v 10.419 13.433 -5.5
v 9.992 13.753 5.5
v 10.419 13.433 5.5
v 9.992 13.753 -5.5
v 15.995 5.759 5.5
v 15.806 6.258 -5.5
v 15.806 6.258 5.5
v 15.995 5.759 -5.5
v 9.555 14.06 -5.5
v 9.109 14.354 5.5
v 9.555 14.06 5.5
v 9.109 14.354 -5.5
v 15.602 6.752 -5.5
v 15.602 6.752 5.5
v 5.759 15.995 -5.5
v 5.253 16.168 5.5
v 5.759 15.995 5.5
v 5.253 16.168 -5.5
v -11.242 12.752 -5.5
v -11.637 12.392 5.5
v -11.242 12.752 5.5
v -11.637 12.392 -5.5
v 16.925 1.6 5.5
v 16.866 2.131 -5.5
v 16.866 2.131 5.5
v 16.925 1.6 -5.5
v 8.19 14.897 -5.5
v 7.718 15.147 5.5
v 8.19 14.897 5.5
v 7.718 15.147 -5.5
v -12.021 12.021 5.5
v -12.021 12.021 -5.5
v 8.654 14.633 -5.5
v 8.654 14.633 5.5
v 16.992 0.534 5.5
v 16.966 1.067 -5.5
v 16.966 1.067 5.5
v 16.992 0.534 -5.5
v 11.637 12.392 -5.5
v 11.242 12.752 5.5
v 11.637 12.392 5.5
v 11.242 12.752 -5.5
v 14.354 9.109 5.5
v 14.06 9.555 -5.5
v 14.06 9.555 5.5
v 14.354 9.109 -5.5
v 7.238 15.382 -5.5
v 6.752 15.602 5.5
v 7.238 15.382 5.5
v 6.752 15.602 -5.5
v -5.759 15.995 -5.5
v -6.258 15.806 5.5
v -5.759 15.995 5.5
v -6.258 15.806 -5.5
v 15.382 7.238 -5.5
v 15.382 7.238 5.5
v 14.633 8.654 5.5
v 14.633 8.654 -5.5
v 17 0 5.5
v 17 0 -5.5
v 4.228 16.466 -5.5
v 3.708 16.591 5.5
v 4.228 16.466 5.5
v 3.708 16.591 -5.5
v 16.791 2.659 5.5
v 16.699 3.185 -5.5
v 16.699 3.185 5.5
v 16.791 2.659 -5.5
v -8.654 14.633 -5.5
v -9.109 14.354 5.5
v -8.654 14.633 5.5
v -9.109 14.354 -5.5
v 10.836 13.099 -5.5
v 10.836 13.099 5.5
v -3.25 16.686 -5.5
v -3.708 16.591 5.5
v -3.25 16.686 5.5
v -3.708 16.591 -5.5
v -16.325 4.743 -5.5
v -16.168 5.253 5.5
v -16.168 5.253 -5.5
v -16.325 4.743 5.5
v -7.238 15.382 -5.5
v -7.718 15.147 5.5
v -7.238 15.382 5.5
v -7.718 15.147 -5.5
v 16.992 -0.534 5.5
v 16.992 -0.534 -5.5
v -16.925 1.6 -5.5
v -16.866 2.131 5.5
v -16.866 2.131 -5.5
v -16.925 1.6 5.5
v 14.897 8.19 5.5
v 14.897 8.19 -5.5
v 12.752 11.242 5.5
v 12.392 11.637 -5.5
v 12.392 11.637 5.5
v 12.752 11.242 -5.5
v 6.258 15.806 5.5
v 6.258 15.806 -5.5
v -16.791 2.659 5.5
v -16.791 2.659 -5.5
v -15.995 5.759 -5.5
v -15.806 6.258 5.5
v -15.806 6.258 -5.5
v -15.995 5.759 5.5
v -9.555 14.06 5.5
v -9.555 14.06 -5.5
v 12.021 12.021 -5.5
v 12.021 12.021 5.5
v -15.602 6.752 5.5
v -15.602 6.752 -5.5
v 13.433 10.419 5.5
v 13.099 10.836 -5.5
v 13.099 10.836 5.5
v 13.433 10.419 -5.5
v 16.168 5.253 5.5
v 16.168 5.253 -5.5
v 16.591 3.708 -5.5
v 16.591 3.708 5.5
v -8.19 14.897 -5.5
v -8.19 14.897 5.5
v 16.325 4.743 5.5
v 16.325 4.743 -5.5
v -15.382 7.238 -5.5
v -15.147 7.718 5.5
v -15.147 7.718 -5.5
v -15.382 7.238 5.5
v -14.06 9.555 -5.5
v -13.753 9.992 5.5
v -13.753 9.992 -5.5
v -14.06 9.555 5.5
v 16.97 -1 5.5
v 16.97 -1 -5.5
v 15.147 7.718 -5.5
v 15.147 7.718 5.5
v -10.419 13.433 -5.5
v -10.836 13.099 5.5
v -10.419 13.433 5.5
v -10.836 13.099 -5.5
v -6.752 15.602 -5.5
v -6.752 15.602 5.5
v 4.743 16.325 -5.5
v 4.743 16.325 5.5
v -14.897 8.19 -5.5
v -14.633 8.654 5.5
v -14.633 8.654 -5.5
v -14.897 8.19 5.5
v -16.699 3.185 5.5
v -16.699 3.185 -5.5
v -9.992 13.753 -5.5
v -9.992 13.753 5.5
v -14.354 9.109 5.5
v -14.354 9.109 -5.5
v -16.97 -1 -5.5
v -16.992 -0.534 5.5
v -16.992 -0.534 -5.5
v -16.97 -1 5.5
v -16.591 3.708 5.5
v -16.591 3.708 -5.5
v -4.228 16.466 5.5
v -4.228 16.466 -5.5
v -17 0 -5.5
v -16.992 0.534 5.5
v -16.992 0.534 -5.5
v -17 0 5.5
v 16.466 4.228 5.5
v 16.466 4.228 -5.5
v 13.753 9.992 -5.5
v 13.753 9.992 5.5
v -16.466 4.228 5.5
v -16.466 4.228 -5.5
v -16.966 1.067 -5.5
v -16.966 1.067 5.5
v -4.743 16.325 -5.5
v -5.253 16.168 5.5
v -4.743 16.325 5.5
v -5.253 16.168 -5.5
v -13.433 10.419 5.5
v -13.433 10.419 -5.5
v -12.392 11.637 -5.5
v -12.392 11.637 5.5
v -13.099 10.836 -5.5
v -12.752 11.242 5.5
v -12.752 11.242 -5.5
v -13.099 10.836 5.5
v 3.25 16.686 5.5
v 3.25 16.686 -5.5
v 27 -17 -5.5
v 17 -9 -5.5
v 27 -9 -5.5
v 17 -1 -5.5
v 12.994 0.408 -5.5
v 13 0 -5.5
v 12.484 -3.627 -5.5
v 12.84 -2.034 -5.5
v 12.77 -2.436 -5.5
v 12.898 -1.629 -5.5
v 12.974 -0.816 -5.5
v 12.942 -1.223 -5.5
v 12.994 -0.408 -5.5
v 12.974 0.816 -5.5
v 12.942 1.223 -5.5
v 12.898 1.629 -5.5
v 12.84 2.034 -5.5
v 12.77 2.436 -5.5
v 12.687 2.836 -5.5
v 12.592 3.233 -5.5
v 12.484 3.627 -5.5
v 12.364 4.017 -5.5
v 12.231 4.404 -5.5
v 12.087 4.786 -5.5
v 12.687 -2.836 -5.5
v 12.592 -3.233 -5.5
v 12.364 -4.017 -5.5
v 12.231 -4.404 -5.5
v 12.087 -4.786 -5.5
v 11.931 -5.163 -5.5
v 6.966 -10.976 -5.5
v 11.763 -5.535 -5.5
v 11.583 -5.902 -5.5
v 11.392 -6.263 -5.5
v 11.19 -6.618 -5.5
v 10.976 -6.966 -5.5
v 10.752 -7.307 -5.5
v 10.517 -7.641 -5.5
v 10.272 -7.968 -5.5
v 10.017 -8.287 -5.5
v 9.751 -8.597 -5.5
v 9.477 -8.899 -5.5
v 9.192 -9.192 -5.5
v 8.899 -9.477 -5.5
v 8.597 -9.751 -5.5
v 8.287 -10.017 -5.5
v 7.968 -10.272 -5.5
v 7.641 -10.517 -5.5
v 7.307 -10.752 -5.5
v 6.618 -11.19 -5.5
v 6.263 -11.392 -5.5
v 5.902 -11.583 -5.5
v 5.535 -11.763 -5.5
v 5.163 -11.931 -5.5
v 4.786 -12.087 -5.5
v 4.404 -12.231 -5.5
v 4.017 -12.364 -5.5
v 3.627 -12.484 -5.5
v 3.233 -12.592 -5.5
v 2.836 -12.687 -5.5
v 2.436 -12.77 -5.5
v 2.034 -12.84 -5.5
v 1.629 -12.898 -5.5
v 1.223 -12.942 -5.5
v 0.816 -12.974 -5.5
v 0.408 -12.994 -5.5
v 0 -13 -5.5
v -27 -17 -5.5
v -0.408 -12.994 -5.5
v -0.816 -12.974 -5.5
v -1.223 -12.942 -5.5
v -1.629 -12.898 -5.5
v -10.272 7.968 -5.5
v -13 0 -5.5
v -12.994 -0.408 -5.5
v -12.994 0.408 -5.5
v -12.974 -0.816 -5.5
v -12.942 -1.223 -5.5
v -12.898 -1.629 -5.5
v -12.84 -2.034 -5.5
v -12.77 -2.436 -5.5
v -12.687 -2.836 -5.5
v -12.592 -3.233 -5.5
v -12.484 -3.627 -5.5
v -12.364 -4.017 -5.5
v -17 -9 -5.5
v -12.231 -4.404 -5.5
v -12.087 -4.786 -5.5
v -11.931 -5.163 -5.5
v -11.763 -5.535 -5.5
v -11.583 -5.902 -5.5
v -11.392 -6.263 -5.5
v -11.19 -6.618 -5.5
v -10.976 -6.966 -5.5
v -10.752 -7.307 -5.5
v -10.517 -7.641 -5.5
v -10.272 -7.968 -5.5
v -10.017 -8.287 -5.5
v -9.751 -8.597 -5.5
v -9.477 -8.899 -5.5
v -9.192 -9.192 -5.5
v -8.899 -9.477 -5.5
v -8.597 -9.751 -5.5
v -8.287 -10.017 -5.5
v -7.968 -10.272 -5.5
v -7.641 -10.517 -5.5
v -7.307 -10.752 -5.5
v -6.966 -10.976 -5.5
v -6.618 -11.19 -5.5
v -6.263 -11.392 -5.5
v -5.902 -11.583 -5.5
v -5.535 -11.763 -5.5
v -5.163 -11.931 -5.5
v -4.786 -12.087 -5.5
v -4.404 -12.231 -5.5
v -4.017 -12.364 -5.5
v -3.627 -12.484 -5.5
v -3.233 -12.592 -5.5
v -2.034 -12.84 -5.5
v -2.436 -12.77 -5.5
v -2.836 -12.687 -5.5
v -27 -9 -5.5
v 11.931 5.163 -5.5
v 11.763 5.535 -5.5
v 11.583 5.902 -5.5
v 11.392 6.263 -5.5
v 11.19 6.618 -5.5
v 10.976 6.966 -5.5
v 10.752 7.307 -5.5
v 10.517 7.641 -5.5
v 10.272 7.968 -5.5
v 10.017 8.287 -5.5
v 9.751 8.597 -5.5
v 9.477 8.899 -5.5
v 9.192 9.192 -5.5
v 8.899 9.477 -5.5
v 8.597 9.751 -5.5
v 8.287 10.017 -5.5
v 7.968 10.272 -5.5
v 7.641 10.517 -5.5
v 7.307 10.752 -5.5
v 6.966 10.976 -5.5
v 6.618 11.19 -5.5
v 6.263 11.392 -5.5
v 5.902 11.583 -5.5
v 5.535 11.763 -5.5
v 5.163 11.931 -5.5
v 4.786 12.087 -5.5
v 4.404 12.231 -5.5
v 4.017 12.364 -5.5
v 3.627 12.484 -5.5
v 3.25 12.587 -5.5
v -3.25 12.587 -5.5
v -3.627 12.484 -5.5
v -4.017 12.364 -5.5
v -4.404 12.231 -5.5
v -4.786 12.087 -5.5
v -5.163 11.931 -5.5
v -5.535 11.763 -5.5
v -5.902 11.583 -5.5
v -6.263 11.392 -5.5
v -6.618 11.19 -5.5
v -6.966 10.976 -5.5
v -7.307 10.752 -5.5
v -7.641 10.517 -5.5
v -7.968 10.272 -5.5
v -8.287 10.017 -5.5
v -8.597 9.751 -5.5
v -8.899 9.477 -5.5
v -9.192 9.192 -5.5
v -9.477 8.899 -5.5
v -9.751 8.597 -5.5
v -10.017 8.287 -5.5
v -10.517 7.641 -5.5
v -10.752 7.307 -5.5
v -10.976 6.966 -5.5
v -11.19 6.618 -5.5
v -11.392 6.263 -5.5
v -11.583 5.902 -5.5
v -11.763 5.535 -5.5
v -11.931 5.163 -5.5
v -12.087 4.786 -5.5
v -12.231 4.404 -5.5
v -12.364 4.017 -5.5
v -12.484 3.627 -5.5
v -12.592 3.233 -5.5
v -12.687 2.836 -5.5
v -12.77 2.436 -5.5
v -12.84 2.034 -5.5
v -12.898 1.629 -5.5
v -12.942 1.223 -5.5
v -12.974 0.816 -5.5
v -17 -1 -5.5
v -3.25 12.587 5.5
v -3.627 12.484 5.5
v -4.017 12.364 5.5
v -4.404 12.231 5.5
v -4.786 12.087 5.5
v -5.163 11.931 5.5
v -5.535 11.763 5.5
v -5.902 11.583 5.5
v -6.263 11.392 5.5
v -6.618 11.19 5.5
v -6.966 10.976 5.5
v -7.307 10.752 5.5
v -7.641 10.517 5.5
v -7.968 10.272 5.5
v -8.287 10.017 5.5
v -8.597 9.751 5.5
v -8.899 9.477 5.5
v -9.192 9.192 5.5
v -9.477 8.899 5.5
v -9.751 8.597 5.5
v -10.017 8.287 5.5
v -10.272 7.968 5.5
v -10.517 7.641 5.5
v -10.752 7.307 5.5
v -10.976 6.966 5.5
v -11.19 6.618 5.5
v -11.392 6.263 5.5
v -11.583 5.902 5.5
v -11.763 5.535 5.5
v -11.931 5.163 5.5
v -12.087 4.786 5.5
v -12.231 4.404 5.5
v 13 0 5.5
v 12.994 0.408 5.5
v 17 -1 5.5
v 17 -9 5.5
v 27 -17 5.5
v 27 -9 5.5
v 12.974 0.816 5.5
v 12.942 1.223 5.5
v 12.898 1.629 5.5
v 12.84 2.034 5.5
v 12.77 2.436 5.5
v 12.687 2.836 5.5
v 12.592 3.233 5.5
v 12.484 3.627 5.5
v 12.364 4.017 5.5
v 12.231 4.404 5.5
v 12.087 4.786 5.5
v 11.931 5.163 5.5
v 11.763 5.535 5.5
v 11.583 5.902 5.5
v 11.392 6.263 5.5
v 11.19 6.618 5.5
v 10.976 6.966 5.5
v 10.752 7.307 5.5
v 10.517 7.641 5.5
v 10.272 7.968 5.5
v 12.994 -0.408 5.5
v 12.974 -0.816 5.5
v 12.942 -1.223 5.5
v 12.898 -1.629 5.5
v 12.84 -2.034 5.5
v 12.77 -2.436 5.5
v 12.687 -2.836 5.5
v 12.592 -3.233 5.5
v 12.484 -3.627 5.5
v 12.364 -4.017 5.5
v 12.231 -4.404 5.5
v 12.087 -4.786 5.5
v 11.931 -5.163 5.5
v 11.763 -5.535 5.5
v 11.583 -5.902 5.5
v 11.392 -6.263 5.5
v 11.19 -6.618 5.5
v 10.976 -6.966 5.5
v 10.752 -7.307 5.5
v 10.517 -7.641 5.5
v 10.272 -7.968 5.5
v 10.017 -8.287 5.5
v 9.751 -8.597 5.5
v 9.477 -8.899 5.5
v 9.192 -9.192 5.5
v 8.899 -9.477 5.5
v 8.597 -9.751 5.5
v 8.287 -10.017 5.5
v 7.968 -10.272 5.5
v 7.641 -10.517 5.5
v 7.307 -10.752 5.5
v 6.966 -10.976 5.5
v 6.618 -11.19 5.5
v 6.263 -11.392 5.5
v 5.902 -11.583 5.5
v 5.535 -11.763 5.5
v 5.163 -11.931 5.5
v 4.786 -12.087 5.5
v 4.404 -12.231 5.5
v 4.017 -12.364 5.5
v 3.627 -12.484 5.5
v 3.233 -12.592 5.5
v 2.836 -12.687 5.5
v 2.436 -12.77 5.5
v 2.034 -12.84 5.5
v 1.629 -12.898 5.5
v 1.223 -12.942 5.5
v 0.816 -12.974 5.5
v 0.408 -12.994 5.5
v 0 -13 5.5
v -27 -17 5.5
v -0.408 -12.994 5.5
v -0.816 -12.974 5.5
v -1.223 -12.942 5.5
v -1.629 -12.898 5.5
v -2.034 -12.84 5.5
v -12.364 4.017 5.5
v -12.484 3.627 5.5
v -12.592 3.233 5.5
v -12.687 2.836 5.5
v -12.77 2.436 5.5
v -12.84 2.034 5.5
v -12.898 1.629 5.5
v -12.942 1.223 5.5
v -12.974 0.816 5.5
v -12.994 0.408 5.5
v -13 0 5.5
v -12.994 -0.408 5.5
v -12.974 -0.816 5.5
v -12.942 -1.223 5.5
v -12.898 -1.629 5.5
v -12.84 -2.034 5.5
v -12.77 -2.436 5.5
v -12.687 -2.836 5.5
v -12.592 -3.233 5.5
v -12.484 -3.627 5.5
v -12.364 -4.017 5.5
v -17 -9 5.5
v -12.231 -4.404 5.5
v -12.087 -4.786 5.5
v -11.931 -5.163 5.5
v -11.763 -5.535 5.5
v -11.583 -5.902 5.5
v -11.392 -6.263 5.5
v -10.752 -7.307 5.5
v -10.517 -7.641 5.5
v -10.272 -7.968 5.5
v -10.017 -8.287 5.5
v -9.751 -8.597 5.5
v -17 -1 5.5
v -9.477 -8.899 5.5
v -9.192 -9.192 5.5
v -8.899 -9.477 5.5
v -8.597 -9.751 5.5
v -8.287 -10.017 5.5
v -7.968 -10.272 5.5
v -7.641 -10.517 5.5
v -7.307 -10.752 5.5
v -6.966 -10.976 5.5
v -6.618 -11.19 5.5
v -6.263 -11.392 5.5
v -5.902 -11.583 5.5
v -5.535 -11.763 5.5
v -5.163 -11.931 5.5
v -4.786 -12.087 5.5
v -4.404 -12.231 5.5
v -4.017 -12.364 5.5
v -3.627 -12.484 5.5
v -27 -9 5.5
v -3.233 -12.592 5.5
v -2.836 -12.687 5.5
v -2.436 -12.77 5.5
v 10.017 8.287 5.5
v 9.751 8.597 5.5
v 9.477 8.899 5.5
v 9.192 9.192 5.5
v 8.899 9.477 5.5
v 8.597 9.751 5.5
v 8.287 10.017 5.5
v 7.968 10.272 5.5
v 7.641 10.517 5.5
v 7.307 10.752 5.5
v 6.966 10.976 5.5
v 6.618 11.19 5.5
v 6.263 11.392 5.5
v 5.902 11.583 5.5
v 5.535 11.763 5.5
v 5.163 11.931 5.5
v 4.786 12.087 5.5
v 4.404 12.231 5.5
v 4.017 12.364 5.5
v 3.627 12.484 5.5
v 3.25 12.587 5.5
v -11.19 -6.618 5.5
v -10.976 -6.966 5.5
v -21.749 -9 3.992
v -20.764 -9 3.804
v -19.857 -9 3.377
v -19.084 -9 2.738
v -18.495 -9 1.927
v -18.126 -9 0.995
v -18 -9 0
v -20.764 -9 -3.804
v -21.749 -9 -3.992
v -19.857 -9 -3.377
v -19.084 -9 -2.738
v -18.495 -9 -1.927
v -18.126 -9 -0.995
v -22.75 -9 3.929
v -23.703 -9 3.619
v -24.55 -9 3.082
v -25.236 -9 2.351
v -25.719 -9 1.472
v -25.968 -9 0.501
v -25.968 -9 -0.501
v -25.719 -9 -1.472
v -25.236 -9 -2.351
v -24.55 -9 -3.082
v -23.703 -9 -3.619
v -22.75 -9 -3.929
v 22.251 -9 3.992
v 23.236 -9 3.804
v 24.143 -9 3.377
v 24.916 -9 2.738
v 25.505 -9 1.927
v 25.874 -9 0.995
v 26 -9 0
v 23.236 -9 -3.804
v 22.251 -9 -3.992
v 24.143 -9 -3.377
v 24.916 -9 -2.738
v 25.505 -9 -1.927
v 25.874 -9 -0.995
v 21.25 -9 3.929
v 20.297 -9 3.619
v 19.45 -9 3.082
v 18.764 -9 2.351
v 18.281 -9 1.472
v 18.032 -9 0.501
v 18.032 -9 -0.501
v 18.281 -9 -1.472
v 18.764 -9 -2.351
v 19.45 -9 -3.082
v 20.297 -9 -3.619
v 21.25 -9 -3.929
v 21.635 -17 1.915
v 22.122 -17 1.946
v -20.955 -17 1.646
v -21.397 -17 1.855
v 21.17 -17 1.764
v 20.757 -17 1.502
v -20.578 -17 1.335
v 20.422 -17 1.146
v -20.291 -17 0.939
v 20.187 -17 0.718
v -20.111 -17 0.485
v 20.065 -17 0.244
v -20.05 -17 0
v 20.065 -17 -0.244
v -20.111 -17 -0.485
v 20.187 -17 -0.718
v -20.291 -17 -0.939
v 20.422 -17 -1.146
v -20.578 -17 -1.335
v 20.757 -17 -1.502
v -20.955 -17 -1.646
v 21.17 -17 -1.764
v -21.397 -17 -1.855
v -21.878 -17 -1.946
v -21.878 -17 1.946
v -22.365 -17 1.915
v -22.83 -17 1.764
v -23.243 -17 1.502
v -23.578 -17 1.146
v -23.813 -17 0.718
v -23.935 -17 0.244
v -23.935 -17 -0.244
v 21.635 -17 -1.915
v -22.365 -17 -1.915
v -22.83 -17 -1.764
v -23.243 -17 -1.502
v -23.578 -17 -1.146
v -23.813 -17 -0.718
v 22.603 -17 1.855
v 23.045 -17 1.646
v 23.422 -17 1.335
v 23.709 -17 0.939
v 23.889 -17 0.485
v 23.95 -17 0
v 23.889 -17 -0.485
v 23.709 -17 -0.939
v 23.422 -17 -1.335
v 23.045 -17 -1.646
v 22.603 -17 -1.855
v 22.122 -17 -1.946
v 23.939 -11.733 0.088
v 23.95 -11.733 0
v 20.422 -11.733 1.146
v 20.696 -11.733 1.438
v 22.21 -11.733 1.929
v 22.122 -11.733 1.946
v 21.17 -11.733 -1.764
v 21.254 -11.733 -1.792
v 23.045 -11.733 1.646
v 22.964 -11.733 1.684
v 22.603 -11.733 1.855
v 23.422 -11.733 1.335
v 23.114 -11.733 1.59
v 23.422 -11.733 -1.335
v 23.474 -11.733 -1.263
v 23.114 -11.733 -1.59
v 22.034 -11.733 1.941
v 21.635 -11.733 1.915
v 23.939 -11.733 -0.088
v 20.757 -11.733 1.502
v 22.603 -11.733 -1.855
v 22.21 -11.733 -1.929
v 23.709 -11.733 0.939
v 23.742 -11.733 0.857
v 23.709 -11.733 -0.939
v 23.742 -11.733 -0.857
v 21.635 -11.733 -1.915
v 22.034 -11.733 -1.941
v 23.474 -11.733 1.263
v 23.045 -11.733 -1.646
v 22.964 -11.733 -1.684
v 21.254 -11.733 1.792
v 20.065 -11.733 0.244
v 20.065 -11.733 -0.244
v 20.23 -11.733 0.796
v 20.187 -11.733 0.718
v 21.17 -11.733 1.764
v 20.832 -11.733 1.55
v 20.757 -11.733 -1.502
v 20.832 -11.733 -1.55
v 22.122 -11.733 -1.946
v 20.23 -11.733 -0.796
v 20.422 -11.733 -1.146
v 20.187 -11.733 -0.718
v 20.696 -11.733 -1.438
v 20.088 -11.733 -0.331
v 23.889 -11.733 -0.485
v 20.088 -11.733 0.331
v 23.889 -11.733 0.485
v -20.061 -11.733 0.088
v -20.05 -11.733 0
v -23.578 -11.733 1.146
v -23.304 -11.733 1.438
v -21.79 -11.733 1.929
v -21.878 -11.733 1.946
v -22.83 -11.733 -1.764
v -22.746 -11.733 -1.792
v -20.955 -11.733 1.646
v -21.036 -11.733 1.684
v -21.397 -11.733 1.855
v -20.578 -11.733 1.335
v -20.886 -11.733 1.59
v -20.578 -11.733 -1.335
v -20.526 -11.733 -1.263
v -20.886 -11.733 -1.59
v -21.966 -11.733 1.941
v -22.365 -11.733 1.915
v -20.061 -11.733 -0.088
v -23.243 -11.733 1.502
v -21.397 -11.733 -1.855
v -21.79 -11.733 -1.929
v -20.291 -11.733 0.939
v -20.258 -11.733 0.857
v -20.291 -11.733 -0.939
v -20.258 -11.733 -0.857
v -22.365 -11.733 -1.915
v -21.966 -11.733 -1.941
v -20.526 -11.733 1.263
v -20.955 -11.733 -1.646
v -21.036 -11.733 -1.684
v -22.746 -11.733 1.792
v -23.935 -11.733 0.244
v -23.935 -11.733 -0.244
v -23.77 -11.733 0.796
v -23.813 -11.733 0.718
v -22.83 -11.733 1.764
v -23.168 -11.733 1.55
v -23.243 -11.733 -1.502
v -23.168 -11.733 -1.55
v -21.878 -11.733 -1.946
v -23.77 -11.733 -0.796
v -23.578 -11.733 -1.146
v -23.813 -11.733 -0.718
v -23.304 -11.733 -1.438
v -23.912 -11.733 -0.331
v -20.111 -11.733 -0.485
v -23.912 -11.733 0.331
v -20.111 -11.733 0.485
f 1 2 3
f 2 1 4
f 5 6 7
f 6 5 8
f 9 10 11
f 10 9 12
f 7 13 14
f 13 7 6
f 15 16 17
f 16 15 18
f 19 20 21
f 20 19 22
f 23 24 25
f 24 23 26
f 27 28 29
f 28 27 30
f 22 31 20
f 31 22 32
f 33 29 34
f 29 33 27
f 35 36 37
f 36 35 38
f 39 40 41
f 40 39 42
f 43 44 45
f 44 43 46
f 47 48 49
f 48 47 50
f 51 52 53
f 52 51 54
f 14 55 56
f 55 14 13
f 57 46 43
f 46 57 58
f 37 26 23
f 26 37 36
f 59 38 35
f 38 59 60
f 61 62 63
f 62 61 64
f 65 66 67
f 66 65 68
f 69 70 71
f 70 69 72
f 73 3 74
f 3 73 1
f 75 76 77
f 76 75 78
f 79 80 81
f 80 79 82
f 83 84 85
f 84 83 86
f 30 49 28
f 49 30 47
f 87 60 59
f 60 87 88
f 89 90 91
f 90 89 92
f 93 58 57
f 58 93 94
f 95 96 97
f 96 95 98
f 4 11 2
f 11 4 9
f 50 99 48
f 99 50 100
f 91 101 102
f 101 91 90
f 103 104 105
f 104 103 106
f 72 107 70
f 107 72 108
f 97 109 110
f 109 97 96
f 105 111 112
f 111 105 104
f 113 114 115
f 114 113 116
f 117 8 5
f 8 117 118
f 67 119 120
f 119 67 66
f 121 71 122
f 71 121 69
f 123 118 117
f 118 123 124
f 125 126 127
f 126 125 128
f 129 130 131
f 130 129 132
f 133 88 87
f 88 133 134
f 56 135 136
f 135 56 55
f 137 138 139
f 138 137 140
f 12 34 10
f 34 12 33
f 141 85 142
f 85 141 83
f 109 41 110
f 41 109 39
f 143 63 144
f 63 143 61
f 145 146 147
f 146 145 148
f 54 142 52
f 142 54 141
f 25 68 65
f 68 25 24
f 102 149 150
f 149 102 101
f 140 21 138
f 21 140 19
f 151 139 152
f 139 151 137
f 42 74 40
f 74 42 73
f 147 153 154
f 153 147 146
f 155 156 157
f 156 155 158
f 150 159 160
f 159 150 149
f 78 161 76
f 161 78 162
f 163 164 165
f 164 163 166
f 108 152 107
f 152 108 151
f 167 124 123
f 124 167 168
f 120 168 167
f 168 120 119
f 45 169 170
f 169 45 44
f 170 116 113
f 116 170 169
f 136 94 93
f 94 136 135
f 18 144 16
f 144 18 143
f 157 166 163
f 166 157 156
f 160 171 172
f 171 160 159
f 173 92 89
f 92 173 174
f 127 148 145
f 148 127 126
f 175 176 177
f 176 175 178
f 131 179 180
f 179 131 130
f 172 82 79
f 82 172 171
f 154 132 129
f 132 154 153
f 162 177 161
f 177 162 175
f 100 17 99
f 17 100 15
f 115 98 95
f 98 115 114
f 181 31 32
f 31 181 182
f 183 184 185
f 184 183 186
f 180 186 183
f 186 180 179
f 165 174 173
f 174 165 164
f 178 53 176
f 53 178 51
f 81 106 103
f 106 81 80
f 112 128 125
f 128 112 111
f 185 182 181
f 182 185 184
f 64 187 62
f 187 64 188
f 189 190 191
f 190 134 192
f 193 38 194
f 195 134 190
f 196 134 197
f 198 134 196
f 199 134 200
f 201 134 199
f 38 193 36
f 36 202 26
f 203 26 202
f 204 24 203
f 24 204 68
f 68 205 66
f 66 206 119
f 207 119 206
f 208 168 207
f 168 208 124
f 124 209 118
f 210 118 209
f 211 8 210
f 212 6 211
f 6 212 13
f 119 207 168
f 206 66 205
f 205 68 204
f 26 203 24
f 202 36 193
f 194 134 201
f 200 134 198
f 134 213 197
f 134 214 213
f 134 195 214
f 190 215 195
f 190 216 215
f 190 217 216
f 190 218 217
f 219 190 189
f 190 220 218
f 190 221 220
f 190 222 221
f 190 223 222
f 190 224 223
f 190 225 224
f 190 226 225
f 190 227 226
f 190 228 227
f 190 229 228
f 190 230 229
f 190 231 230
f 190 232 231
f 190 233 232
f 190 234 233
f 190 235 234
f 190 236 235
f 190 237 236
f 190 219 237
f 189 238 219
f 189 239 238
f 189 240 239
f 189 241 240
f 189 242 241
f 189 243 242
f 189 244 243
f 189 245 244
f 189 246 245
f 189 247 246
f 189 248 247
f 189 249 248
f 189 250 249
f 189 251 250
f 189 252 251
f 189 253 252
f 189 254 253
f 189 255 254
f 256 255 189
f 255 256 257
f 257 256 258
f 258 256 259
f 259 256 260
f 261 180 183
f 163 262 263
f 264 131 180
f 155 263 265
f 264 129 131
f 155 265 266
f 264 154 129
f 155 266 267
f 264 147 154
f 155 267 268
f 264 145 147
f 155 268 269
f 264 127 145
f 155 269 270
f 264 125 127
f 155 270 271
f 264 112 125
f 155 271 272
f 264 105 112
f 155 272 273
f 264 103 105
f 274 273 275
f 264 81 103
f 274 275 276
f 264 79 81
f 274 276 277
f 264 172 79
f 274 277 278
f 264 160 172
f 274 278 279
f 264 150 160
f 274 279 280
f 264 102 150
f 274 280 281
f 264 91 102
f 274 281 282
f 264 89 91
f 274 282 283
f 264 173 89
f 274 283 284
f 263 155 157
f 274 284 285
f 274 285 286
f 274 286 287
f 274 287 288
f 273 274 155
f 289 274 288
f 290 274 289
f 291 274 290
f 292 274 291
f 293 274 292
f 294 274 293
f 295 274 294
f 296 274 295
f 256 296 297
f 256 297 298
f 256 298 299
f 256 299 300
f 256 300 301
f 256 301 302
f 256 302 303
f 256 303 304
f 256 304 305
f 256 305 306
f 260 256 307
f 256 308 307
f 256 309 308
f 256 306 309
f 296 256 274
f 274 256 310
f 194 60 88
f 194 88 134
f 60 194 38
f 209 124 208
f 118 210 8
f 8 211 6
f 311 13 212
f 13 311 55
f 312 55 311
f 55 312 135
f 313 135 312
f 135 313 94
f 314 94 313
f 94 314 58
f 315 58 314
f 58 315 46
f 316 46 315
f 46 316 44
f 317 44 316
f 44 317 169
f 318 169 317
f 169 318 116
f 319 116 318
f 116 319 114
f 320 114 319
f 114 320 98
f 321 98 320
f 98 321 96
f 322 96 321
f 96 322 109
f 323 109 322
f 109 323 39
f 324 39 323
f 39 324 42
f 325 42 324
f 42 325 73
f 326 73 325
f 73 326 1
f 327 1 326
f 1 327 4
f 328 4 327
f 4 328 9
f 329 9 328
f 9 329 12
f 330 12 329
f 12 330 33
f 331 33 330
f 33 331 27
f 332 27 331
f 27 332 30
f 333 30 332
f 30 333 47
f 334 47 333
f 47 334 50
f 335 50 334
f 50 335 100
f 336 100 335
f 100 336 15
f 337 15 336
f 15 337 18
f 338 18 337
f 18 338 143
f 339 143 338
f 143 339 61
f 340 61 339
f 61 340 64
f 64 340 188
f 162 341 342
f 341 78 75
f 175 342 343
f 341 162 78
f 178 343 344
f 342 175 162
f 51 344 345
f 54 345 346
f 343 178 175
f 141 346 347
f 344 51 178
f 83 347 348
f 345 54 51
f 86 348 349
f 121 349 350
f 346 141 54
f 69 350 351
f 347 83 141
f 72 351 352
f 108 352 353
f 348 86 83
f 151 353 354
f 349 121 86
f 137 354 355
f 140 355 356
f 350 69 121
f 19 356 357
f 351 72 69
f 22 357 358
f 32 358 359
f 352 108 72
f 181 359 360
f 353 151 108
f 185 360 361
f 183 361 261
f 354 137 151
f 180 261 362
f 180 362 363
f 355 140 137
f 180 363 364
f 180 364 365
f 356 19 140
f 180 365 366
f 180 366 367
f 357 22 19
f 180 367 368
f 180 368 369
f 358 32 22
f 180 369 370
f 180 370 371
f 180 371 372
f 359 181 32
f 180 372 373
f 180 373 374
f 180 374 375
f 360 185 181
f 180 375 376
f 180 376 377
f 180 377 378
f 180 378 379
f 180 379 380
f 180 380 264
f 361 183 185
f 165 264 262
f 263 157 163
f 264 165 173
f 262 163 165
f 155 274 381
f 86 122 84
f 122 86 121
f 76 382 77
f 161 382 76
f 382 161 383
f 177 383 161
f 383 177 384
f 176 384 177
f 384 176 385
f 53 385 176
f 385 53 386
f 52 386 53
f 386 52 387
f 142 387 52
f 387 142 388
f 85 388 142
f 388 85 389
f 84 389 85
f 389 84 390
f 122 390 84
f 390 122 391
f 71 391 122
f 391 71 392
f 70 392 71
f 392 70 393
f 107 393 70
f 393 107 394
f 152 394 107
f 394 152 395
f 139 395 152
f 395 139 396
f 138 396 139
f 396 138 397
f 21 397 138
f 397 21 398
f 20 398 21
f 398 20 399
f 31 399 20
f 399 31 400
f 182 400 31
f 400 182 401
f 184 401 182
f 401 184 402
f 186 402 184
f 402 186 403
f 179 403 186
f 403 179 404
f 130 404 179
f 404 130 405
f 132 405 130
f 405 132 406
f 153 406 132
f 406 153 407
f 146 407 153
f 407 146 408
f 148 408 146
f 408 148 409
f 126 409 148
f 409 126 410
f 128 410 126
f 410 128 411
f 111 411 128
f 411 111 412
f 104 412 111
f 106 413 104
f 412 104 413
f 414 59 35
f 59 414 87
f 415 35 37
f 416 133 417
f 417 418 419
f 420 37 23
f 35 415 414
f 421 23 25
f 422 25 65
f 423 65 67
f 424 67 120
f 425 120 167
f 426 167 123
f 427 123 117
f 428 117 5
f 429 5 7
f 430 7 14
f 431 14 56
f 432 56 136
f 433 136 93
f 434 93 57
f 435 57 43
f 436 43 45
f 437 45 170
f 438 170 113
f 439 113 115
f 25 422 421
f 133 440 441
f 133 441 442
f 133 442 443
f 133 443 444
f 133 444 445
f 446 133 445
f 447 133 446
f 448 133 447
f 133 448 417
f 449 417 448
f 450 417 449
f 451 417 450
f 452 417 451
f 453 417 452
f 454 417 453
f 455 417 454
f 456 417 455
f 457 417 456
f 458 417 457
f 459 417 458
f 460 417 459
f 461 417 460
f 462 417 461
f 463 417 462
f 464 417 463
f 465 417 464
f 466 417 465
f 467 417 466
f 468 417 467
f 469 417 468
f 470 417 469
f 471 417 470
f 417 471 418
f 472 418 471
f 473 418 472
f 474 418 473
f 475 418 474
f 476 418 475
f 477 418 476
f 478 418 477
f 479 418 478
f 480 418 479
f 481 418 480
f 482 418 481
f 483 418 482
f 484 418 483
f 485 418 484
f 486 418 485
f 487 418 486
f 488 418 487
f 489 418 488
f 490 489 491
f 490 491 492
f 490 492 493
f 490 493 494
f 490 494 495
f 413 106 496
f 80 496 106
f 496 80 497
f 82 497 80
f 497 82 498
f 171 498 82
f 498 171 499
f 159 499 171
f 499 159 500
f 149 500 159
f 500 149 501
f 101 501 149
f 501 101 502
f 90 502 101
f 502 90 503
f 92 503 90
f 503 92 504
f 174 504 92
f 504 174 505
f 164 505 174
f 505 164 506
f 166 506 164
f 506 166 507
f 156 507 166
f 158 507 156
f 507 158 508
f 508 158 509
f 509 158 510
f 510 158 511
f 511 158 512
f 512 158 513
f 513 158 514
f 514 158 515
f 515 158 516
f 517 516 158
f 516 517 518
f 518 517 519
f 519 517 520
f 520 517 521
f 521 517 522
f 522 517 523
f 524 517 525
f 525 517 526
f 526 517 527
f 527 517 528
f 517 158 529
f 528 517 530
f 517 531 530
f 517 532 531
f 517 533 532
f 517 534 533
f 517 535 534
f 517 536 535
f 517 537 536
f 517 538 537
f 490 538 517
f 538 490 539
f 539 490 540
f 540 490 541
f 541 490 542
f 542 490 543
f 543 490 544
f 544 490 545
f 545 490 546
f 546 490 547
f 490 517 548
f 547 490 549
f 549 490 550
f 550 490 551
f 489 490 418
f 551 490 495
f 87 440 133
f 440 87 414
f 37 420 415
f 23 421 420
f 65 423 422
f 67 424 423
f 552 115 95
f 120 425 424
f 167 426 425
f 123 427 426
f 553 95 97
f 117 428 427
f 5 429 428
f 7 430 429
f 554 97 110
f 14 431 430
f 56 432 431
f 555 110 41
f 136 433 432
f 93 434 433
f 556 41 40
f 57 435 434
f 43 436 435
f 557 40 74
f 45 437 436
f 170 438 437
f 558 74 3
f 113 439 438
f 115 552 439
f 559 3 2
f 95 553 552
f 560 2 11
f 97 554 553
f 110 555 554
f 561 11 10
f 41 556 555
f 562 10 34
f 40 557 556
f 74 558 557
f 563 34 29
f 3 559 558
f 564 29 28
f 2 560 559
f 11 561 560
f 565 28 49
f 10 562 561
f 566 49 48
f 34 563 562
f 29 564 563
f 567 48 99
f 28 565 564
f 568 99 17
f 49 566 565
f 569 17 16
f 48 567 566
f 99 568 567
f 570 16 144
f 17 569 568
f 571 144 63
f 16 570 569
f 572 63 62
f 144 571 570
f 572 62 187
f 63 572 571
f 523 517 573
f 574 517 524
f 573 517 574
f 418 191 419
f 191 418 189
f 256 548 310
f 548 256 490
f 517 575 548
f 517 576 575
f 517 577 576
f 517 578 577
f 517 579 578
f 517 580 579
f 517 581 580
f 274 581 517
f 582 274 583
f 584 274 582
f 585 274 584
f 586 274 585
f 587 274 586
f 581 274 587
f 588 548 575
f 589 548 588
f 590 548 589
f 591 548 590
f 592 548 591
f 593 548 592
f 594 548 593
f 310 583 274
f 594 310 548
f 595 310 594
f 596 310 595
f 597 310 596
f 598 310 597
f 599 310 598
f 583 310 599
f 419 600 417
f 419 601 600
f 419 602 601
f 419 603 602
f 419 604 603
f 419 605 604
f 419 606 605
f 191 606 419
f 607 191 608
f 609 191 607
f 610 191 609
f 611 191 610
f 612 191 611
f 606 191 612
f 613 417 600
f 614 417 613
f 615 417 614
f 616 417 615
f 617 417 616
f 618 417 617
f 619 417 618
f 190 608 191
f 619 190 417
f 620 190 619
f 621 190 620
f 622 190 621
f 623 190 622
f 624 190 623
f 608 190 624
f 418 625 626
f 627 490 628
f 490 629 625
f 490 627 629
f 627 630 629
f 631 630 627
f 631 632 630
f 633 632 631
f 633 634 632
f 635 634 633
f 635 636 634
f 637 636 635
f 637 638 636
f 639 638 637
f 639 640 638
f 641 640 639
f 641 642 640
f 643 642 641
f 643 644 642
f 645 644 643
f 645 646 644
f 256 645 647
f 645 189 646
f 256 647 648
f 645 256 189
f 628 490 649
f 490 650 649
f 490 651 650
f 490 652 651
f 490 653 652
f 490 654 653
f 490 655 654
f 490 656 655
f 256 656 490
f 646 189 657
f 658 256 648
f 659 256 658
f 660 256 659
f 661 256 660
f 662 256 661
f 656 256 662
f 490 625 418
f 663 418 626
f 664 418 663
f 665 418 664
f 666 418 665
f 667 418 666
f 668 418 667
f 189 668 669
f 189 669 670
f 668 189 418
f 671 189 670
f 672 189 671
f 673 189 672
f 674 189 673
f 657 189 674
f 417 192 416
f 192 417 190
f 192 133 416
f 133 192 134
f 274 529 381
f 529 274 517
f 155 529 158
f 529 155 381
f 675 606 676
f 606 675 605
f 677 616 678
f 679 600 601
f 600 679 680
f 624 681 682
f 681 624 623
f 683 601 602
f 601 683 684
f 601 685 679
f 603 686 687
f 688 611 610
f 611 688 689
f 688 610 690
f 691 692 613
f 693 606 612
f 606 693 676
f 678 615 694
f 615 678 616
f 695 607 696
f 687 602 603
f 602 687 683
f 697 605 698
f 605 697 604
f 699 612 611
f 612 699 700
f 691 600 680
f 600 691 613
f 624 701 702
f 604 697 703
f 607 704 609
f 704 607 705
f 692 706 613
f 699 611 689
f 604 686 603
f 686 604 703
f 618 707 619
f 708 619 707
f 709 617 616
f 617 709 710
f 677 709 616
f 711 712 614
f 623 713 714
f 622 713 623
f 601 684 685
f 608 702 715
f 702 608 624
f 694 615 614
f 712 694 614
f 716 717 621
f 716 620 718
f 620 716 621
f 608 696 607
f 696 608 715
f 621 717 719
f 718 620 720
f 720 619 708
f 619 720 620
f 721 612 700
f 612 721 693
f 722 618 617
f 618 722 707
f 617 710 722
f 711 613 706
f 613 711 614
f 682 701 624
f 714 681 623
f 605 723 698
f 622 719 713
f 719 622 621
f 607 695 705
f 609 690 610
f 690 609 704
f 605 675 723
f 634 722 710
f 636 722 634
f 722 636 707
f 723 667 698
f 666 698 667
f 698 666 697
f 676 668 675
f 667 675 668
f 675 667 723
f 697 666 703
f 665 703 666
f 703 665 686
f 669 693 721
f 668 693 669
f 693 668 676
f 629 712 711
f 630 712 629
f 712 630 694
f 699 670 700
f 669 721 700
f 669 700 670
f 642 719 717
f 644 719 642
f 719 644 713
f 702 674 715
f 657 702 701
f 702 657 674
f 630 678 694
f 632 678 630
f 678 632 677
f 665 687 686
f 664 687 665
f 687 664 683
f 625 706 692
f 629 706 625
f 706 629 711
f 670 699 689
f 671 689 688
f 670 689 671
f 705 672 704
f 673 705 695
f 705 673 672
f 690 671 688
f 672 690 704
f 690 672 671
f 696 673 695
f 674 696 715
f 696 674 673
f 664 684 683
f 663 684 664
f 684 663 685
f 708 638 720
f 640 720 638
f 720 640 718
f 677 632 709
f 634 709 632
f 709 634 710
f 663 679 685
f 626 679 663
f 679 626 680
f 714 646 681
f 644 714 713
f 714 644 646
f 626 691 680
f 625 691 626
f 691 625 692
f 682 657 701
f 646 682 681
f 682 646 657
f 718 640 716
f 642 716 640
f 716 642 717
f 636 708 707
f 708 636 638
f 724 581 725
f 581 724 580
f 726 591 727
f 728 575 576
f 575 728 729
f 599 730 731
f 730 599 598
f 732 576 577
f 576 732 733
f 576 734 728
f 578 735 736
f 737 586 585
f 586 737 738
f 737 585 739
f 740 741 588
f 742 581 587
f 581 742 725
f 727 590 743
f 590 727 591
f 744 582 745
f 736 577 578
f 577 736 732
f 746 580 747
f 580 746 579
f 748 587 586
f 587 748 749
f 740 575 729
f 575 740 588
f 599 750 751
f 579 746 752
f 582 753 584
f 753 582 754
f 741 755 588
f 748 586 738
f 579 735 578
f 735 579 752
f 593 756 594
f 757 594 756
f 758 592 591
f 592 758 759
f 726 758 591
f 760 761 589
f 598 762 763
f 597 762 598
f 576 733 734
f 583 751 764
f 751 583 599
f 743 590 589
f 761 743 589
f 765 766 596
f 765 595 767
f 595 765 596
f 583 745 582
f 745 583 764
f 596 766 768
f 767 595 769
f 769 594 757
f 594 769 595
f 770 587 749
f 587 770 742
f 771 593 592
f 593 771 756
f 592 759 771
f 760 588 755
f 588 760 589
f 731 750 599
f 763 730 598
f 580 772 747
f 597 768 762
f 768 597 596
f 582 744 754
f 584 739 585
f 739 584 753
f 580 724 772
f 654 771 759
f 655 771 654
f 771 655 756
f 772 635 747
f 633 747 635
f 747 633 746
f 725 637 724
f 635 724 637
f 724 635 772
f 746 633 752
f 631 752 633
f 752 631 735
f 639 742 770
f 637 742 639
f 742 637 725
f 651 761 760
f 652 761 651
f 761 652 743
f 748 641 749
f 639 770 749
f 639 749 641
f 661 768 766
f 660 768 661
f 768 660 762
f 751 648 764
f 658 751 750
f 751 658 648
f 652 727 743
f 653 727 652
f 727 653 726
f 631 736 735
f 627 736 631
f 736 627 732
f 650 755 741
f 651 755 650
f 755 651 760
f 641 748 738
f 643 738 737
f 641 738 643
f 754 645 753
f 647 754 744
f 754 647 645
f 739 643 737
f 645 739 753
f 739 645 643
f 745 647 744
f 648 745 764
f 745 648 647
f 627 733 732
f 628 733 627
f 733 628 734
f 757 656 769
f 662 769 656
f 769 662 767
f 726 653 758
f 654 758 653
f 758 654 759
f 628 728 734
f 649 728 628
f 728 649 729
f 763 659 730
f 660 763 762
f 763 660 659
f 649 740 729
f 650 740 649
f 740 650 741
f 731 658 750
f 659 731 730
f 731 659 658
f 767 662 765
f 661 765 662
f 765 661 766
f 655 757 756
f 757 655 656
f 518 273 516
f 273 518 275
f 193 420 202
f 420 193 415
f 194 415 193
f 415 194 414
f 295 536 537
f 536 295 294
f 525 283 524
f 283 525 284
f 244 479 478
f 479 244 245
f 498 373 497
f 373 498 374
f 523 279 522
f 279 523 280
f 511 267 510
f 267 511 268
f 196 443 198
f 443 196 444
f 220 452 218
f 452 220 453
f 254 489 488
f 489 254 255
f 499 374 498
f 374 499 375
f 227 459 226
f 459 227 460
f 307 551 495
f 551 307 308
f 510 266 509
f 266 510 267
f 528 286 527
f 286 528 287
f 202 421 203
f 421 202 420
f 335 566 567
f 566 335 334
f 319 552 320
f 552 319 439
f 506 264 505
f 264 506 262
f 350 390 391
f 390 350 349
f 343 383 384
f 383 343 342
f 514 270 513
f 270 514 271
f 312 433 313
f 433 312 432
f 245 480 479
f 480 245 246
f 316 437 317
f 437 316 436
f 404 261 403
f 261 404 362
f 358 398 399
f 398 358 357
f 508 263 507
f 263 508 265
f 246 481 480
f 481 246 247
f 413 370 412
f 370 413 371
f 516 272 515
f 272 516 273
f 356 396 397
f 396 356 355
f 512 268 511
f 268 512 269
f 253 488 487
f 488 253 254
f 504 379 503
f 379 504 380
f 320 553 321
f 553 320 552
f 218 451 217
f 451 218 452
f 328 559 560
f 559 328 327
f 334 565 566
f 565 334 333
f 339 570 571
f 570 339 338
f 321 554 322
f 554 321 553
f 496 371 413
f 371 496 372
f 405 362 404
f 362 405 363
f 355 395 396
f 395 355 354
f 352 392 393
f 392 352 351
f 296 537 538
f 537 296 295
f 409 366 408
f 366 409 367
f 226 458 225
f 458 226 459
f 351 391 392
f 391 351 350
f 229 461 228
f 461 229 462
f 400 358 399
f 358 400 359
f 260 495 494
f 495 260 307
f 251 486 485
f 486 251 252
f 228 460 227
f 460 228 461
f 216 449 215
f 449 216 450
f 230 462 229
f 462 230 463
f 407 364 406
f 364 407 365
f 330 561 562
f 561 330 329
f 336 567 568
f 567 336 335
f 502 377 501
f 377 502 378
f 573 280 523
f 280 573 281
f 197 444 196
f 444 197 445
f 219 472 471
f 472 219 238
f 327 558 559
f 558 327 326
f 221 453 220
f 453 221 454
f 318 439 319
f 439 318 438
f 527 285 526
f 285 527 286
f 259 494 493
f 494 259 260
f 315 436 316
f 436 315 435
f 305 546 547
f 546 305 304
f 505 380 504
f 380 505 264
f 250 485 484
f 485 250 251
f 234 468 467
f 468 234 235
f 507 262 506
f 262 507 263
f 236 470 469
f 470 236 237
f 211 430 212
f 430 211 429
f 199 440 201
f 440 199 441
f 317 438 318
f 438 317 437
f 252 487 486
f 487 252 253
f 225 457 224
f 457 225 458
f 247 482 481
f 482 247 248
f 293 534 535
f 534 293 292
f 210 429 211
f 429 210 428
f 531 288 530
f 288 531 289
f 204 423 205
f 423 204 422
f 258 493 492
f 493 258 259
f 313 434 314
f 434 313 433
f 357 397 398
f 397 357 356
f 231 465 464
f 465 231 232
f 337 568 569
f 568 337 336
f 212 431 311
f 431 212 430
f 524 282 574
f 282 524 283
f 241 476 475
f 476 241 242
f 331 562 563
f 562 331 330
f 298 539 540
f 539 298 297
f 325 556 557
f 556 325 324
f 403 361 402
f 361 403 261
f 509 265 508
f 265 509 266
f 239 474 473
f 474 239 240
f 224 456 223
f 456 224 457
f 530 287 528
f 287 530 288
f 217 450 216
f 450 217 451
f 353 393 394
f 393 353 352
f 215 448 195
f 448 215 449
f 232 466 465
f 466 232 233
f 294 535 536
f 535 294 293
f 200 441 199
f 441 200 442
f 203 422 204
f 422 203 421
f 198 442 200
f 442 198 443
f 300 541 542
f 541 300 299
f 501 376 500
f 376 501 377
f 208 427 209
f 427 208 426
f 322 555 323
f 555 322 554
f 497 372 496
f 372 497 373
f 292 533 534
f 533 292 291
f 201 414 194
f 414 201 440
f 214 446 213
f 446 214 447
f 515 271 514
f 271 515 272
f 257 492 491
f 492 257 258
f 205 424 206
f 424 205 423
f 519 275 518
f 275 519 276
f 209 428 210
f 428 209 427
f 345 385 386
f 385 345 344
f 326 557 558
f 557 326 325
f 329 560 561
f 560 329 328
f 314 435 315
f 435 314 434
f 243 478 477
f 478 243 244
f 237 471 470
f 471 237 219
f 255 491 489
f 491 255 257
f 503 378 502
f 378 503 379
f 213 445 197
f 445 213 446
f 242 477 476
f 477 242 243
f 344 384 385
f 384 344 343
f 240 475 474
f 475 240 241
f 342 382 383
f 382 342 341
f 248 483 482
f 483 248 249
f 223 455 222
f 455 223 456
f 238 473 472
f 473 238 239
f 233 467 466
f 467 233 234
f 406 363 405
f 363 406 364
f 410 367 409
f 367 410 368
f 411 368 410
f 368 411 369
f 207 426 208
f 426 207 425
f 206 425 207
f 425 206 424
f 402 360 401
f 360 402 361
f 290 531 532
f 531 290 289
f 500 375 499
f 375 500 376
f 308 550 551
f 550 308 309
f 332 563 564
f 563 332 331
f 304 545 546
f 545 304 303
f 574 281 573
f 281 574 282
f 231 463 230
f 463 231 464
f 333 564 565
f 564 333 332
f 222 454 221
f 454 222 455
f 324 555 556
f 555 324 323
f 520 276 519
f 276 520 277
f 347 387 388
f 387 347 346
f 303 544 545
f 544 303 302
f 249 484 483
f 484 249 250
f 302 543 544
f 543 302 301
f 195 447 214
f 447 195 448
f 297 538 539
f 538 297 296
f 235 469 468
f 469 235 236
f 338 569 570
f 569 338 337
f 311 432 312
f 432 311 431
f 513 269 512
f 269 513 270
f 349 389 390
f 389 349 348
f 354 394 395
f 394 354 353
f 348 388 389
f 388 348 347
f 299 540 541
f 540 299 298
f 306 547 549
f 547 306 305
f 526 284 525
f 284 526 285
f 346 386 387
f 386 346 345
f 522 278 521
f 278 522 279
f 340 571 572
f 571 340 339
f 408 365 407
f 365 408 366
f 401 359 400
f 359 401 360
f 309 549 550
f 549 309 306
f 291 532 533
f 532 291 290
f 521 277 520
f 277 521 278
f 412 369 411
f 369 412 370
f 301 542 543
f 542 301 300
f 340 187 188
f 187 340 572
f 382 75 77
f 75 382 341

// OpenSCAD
// well i really need to learn about scad modules :)
difference() {
    difference() {
        union() {
            difference() {
                union() {
                    cylinder(11, 17, 17, true, $fn=200);    
                    translate([0, -13, 0]) {
                        cube([54, 8, 11], true);
                    }
                }

                union() { // Screw holes
                    translate([22, -9, 0]) {
                        rotate([90, 0, 0]) {    
                            union() {
                                cylinder(3, 4, 1.75, $fn=25);
                                cylinder(10, 1.95, 1.95, $fn=25);
                            }
                        }
                    }

                    translate([-22, -9, 0]) {
                        rotate([90, 0, 0]) {    
                            union() {
                                cylinder(3, 4, 1.75, $fn=25);
                                cylinder(10, 1.95, 1.95, $fn=25);
                            }
                        }
                    }
                }
            }
            union() {
                translate([10.5, -7, 0]) {
                    cube([13, 12, 11], true);
                }
                translate([-10.5, -7, 0]) {
                    cube([13, 12, 11], true);
                }
            }
        }
        cylinder(11, 13, 13, true, $fn=200);
    }
    translate([0, 14, 0]) {
        cube([6.5,11,11], true);
    } 
    
}
